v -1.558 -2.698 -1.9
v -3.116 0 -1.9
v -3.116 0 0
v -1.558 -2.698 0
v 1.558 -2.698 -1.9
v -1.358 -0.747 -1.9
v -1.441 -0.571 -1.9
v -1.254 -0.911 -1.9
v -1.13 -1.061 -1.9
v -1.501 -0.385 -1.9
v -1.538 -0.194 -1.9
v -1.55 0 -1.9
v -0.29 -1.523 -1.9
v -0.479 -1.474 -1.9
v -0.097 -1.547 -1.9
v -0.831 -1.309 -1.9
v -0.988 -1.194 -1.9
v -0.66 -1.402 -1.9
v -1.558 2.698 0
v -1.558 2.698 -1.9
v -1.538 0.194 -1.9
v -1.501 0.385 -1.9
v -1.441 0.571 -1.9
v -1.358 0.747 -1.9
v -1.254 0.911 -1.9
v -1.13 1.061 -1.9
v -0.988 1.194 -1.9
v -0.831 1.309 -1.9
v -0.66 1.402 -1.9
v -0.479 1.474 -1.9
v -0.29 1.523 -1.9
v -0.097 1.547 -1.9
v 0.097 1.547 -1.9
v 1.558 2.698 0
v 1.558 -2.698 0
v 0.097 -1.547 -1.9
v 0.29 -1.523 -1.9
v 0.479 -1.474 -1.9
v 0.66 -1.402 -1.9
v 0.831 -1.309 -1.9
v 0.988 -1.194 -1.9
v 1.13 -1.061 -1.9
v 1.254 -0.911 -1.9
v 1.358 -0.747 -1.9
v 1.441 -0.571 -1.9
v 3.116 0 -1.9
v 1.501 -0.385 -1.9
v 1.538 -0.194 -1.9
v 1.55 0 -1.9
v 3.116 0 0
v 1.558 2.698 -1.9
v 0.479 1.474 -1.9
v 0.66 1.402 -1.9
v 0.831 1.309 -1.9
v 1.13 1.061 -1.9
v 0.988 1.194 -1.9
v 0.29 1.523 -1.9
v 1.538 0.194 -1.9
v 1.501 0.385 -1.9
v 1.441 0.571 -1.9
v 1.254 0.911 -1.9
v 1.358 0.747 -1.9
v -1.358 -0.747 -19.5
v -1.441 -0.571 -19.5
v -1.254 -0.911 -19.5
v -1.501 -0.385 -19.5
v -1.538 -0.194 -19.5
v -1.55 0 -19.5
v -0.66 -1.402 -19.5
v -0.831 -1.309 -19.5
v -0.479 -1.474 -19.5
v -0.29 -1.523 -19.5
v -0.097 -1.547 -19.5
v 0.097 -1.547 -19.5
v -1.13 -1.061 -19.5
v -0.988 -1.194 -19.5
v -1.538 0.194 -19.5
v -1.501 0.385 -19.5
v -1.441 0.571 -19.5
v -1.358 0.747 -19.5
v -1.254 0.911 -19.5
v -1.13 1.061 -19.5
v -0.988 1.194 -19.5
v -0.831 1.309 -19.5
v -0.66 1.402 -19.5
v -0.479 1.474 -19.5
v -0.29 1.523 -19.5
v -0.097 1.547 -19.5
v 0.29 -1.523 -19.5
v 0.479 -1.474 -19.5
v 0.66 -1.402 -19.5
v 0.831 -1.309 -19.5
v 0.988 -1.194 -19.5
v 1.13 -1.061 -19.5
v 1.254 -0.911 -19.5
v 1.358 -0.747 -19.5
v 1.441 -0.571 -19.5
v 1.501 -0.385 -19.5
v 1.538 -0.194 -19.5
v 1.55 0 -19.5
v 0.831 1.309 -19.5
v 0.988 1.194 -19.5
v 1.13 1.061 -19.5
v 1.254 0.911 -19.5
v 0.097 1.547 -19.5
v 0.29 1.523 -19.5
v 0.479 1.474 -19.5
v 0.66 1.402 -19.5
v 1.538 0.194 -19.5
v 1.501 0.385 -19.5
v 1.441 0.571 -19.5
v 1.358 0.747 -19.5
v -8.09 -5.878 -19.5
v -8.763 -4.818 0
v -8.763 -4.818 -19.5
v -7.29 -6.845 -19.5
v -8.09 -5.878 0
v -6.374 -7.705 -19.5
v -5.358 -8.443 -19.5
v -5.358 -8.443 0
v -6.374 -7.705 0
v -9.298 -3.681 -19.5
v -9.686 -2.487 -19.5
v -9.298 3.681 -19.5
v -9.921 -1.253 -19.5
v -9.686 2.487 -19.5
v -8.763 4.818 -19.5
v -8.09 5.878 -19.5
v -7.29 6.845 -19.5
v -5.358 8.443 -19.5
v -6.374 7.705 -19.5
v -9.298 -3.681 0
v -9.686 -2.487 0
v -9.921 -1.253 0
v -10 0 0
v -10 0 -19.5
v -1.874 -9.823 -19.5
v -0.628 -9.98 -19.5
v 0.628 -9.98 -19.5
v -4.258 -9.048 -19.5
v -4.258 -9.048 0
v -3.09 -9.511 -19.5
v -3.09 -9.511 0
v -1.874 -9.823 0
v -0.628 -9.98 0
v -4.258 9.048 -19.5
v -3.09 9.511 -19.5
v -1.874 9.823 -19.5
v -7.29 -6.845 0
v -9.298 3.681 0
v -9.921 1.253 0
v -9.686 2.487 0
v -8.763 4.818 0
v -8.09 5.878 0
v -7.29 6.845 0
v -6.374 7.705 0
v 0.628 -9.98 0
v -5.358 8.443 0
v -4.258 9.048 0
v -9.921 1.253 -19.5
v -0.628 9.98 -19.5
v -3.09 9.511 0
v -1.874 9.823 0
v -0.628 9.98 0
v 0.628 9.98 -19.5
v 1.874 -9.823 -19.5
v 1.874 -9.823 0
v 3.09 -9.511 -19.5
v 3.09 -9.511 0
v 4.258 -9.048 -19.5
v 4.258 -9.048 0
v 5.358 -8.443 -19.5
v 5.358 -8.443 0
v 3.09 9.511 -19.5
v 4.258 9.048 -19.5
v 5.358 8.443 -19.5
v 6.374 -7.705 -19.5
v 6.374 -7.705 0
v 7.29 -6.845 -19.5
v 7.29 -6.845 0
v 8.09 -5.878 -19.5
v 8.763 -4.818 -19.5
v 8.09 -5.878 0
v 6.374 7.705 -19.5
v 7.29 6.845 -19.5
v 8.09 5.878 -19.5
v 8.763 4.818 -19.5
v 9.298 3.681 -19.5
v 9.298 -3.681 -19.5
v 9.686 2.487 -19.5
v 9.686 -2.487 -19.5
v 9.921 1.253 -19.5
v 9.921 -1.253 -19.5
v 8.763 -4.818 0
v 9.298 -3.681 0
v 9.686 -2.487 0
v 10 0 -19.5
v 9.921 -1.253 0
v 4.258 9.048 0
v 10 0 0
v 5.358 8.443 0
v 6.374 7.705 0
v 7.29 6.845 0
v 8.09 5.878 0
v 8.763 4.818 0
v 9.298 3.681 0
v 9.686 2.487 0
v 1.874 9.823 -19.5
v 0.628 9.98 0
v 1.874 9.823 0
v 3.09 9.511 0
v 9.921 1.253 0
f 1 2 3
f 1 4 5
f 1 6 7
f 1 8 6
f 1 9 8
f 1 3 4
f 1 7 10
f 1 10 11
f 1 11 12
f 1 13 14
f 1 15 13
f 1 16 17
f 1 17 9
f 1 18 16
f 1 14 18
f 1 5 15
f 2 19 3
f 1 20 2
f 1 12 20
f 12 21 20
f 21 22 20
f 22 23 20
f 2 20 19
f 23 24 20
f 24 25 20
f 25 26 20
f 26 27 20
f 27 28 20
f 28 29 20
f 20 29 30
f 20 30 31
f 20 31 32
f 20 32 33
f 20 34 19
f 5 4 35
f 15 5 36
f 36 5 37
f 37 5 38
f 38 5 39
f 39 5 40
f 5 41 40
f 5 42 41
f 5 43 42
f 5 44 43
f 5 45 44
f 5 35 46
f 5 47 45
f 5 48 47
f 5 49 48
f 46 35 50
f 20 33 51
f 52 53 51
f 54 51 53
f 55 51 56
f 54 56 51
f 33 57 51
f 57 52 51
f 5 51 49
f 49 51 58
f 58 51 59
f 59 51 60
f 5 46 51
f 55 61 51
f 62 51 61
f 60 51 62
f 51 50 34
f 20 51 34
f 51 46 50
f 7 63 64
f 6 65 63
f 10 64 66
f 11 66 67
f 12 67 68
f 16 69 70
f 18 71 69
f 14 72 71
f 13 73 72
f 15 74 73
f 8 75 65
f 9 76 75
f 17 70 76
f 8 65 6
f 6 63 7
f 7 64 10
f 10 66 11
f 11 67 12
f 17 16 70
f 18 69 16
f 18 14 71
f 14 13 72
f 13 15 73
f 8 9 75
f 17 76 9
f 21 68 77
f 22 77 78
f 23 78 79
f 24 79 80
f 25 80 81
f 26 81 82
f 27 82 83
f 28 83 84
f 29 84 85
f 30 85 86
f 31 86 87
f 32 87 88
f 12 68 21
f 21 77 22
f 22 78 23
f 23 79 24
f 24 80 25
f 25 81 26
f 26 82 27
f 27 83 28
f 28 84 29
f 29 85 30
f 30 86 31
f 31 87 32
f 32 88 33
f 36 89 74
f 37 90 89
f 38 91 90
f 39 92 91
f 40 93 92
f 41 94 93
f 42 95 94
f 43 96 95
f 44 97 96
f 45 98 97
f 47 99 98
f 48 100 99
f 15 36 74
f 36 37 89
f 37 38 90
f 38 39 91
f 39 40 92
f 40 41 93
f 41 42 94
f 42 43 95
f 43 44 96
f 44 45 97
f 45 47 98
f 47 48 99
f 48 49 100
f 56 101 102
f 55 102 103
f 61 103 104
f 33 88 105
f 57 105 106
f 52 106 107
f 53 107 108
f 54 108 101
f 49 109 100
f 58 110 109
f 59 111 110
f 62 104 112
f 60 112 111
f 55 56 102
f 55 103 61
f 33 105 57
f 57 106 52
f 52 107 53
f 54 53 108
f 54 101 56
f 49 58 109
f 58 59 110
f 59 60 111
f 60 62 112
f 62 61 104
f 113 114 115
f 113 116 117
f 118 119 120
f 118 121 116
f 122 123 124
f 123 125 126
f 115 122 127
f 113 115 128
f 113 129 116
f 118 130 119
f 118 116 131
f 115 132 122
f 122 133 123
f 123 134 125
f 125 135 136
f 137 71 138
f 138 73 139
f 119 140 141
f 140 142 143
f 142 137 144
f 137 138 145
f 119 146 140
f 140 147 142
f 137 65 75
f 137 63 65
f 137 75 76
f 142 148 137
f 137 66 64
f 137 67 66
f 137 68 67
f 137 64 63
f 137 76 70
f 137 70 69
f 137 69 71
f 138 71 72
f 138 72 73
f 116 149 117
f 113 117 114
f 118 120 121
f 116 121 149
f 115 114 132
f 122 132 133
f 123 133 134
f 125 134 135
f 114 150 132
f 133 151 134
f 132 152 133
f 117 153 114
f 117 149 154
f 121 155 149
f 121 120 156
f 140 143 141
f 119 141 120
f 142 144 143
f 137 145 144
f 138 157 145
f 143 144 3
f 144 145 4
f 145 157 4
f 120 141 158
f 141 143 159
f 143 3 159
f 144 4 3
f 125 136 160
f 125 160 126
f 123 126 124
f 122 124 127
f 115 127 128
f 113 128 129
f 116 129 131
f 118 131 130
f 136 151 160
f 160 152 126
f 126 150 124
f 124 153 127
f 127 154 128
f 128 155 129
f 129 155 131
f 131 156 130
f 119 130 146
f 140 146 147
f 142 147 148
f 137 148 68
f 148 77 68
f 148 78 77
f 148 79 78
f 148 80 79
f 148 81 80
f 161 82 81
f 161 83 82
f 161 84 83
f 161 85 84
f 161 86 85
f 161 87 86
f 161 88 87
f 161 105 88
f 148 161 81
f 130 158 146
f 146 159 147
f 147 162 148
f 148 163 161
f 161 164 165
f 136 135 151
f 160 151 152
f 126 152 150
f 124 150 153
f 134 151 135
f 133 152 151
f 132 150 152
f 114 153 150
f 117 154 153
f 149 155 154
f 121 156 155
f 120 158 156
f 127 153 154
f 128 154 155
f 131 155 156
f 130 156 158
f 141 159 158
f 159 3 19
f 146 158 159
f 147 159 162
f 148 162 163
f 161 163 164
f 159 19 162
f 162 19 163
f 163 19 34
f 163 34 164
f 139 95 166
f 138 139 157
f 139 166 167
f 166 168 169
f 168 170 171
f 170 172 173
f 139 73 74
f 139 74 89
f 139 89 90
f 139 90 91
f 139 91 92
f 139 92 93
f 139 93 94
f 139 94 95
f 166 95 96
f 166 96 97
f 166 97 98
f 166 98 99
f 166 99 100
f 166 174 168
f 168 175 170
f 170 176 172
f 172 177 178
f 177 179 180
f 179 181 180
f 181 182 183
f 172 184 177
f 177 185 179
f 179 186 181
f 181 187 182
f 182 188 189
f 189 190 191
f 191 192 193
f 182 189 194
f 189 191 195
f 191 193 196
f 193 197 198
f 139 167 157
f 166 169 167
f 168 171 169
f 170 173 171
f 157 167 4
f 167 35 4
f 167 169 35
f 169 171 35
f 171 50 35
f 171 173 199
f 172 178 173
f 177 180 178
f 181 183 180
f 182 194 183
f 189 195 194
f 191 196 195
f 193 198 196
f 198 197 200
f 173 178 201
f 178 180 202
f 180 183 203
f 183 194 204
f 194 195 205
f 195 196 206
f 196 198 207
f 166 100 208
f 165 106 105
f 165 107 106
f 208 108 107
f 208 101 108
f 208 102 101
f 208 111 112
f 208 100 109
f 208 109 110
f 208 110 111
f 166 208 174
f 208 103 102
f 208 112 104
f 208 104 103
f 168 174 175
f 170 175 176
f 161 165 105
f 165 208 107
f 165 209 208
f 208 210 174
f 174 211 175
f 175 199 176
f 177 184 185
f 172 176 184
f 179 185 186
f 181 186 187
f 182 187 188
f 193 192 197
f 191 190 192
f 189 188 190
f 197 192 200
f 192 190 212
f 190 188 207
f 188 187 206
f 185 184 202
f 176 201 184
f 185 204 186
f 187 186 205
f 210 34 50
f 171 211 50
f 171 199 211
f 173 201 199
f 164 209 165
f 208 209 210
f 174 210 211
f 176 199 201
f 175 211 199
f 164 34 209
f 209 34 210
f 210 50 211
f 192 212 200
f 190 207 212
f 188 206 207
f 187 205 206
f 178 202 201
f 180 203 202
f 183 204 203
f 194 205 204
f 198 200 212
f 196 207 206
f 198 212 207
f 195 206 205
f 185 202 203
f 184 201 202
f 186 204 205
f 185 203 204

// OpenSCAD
$fn = 50;

difference() {
	union() {
		translate(v = [0, 0, -19.5]) {
			cylinder(h = 19.5, r = 10.0);
		}
	}
	union() {
		translate(v = [0, 0, 0]) {
			rotate(a = [0, 0, 0]) {
				difference() {
					union() {
						translate(v = [0, 0, -1.9]) {
							linear_extrude(height = 1.9) {
								polygon(points = [[3.1158, 0.0], [1.5579000000000005, 2.698361953111554], [-1.5578999999999994, 2.6983619531115544], [-3.1158, 3.815754496783323e-16], [-1.5579000000000014, -2.6983619531115535], [1.557899999999998, -2.6983619531115552]]);
							}
						}
					}
					union();
				}
			}
		}
		#translate(v = [0, 0, -100.0]) {
			cylinder(h = 200, r = 1.55);
		}
	}
}
